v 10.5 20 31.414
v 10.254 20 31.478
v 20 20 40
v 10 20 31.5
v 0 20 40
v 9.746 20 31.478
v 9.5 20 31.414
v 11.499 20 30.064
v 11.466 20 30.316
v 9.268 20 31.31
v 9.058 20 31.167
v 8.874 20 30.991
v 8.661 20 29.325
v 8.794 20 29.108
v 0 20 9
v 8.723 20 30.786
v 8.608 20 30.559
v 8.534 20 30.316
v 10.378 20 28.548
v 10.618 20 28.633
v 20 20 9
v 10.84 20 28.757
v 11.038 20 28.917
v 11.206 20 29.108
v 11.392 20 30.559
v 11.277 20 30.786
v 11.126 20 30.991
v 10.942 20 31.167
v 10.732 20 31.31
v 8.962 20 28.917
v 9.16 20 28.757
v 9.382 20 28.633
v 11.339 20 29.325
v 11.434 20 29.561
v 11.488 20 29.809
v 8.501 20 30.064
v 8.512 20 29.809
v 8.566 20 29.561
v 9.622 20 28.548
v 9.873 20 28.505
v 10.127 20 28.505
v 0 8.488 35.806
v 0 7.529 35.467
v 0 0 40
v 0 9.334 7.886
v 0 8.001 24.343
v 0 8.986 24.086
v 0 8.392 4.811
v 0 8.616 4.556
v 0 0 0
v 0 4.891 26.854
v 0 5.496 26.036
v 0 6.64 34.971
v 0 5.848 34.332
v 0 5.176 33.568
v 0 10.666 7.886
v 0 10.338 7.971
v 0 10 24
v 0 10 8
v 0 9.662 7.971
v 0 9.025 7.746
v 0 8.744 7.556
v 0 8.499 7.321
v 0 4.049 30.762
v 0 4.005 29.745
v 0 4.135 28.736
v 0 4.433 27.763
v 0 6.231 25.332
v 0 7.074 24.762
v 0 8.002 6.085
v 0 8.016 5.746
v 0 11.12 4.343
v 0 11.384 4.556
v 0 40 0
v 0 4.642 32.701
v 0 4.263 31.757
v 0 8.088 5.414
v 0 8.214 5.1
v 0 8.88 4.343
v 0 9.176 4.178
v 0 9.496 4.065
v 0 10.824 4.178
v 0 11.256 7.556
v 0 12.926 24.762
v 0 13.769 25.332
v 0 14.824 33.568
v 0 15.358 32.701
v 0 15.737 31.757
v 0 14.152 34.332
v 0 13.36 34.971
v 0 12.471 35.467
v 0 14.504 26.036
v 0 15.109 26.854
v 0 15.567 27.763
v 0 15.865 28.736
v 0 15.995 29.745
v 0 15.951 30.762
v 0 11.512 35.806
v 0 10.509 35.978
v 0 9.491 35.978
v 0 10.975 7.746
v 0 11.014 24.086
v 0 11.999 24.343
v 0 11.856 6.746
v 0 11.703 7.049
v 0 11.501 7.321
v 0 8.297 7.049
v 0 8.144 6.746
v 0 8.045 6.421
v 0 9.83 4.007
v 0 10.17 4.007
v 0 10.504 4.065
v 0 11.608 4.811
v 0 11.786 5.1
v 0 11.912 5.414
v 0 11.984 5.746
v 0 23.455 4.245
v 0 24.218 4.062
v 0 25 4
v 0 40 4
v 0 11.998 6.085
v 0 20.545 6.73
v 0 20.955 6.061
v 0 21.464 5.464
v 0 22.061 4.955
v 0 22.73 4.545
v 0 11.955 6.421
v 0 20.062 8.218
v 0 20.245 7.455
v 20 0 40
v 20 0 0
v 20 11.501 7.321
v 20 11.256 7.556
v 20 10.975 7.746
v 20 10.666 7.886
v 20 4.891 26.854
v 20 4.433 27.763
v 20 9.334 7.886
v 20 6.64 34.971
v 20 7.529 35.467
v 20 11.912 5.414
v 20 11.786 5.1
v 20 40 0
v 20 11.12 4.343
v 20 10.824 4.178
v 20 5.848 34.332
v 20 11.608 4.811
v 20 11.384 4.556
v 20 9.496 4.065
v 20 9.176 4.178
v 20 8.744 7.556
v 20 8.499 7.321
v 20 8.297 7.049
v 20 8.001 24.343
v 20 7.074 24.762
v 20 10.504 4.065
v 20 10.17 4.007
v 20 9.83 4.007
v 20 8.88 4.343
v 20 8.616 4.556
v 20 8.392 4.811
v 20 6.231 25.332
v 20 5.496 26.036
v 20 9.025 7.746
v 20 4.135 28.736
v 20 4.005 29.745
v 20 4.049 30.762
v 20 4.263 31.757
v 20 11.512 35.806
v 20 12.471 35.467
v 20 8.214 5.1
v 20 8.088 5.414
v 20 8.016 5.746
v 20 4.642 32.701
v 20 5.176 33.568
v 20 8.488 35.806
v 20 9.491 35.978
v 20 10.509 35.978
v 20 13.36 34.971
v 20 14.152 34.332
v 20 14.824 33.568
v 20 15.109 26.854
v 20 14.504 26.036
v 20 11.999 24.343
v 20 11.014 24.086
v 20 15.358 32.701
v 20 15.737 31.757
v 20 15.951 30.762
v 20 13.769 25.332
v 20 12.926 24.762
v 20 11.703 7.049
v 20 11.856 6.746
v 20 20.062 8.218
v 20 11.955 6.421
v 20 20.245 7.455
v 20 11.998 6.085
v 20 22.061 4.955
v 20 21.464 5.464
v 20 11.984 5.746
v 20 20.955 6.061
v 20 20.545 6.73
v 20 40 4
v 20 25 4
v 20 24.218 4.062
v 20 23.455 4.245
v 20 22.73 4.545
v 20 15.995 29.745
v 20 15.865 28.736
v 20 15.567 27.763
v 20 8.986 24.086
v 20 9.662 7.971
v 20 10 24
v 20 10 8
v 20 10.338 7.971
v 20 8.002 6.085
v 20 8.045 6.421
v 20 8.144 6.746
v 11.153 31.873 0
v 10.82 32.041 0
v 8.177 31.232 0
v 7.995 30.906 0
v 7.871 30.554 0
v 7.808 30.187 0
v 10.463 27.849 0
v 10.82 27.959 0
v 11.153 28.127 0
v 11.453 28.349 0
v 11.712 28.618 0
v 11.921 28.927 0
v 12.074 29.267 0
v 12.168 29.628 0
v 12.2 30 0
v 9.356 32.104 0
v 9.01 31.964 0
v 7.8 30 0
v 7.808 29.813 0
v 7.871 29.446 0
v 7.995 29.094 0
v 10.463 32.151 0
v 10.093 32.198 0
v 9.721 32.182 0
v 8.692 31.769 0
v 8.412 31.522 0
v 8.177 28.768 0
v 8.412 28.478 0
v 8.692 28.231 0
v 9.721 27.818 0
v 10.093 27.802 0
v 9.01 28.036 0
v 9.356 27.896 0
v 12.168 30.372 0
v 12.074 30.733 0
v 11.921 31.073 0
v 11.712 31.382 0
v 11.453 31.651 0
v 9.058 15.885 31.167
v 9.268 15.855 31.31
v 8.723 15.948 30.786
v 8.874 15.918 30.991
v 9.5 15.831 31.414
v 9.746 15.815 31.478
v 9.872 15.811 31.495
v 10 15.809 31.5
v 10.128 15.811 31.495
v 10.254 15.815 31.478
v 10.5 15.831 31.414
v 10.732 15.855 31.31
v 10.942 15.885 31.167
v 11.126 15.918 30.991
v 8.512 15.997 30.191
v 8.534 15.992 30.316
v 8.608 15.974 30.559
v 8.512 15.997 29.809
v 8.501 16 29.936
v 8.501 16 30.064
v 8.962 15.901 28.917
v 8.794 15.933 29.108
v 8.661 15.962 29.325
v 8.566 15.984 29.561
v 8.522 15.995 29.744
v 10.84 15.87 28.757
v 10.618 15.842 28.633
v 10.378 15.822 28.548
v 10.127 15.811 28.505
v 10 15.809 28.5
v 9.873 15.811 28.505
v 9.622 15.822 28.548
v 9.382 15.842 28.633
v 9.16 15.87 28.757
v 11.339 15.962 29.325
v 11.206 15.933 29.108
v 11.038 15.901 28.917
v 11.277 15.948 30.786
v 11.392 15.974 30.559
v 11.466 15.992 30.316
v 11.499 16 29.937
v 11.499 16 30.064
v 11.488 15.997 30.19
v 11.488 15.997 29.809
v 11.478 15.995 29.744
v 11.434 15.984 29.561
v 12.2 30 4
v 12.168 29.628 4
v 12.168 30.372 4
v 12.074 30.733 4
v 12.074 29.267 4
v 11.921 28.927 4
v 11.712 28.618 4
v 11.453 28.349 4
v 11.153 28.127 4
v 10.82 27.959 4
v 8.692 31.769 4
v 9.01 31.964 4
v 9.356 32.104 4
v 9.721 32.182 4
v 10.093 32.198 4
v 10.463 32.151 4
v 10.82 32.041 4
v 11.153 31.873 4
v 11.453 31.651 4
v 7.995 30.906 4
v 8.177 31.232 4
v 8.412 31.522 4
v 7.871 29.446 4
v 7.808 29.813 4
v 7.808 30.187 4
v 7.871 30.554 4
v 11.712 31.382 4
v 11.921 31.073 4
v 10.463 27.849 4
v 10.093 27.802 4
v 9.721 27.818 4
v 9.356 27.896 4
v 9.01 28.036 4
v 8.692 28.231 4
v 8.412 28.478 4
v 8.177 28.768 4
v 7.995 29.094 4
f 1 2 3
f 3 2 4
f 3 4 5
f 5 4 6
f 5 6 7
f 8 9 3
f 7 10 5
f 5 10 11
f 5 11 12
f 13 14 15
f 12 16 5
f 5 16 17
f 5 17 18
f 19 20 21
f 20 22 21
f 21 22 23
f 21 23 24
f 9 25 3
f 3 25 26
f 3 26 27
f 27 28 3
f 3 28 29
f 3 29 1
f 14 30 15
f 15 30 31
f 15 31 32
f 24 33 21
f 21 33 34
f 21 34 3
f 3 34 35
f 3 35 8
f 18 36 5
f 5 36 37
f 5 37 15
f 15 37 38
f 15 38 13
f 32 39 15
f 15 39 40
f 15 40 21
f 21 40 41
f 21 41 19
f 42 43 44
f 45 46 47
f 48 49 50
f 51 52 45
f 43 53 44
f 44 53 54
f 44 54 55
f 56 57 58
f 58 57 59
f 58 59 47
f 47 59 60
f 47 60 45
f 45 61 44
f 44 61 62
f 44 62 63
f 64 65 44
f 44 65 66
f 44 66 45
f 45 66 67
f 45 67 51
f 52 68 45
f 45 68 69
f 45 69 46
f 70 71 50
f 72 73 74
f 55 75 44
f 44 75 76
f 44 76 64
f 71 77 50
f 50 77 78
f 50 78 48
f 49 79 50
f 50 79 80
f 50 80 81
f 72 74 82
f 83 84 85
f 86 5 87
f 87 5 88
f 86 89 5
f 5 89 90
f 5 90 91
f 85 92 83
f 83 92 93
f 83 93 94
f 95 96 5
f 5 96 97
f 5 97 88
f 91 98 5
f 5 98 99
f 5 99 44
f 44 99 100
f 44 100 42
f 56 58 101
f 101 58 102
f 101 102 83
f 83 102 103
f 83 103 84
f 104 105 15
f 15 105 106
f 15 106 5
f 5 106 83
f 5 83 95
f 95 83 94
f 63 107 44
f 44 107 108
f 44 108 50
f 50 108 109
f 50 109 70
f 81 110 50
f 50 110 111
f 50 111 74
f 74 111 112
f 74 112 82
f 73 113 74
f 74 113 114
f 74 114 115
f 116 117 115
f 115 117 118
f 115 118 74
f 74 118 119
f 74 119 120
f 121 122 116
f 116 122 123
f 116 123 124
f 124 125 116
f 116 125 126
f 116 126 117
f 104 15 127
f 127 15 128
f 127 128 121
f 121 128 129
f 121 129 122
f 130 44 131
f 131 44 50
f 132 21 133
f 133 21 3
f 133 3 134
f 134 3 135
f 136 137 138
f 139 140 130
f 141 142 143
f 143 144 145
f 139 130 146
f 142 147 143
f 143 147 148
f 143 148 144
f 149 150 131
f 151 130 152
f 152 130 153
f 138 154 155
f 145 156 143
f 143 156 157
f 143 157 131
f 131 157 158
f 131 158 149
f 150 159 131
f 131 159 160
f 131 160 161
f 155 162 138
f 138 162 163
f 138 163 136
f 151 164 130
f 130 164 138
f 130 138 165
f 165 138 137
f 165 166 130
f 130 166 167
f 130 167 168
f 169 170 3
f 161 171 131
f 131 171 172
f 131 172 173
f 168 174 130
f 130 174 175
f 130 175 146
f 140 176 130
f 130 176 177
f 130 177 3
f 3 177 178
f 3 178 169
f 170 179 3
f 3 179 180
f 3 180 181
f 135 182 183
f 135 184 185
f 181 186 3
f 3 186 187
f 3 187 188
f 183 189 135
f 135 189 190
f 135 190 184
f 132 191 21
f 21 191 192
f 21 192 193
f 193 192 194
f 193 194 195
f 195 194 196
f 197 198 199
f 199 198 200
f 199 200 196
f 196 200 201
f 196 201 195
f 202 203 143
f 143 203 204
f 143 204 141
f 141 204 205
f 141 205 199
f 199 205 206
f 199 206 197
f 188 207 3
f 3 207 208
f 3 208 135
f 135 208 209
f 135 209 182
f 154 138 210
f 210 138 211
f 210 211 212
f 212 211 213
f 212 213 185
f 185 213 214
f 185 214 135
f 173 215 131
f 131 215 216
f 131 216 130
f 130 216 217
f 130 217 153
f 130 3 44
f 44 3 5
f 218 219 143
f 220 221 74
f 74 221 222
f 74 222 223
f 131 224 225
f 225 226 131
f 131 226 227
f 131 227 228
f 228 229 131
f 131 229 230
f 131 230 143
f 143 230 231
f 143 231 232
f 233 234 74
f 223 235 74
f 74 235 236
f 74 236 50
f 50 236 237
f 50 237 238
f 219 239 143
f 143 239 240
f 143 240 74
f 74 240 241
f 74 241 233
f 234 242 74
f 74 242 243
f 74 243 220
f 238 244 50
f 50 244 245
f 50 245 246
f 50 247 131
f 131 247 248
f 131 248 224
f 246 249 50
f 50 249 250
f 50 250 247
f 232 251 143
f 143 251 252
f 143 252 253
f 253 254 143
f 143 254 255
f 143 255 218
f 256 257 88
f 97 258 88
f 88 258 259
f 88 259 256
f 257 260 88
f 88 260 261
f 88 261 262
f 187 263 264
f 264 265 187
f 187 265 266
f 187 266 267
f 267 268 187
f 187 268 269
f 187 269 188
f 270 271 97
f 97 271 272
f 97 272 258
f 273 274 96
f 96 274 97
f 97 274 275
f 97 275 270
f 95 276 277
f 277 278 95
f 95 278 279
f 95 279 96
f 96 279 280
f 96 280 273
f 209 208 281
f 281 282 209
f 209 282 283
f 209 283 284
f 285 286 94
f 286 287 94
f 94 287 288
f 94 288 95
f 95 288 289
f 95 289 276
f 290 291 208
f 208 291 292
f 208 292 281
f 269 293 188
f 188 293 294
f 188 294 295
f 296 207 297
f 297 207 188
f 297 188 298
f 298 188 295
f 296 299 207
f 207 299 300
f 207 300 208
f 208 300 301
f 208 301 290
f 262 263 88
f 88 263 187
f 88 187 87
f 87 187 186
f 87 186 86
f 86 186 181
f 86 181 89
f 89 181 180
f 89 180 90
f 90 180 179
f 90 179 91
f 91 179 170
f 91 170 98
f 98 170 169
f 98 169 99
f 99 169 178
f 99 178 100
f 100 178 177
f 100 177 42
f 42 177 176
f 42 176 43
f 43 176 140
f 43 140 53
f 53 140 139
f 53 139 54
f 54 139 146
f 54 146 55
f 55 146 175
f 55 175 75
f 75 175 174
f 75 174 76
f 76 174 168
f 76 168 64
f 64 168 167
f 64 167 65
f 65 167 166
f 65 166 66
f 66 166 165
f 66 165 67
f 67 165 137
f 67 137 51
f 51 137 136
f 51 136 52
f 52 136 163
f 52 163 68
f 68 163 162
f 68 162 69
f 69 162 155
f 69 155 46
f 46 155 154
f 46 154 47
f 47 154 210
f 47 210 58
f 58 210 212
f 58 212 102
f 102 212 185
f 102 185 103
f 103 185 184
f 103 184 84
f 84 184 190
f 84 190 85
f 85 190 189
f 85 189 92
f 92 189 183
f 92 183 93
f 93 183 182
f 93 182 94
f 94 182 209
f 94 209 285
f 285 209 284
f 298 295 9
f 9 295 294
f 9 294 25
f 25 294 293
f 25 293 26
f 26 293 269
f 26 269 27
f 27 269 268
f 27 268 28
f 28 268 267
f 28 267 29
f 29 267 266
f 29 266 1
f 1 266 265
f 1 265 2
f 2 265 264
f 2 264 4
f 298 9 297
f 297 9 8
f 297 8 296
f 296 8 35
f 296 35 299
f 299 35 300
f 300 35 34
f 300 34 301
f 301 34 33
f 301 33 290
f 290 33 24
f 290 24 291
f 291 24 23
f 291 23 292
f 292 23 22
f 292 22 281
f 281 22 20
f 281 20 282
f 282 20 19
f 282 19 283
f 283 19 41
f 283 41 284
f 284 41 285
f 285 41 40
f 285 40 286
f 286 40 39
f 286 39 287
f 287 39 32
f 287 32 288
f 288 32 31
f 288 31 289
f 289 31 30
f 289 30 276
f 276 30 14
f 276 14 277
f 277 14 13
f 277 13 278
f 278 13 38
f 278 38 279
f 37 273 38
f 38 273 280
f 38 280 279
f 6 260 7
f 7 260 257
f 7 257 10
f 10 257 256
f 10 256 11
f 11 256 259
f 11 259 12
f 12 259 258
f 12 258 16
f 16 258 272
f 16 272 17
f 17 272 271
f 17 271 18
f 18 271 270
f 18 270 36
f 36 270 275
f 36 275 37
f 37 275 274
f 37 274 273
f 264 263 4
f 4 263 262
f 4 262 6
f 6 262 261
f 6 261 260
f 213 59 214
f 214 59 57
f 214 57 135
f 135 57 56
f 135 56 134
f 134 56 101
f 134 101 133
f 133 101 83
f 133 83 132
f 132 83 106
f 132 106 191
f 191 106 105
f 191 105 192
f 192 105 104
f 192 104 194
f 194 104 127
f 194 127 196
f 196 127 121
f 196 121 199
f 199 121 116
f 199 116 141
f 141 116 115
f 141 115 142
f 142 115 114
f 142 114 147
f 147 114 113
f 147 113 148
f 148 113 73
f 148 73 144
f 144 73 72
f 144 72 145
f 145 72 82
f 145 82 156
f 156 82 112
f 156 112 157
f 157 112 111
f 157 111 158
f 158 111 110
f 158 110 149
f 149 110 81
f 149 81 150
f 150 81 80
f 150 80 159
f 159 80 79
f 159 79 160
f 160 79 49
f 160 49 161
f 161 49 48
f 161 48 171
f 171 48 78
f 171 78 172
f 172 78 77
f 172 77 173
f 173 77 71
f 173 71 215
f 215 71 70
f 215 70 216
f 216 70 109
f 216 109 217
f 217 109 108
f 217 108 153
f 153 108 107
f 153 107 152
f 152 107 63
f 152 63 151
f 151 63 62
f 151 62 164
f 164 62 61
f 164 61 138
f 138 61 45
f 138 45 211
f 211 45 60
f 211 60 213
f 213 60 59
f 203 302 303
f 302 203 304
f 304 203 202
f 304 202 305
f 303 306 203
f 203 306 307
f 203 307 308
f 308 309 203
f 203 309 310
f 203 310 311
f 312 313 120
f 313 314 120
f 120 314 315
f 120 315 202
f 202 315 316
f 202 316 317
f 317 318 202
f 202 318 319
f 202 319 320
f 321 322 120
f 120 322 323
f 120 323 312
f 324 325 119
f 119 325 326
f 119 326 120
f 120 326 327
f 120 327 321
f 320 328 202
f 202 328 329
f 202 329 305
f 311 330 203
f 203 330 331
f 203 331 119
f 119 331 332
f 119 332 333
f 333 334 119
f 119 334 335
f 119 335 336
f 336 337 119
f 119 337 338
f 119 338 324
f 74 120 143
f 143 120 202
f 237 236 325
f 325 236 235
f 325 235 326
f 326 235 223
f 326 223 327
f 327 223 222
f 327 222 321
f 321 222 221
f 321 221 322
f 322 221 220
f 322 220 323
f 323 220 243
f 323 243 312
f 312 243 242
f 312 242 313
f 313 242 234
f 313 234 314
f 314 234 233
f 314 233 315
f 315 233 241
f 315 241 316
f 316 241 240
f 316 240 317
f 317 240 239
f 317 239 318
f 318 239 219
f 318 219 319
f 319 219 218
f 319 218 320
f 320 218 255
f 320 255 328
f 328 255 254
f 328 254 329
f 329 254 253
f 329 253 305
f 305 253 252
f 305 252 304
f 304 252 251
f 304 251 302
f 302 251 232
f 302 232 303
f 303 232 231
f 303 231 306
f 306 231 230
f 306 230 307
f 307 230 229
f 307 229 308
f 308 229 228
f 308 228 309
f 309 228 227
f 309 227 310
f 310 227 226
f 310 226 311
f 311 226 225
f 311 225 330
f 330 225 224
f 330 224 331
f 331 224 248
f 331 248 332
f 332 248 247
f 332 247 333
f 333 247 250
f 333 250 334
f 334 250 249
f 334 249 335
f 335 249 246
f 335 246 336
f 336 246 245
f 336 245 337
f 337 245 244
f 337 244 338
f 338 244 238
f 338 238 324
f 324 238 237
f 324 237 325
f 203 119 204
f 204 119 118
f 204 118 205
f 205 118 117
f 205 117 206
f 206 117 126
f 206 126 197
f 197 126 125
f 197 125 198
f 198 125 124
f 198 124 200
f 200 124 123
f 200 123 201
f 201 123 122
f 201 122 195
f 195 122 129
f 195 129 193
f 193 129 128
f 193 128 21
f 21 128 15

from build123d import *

# Parameters (mm, degrees)
SKETCH1_W                  = 20
SKETCH1_H                  = 20
BOSS_EXTRUDE1_DEPTH        = 40
SKETCH2_R                  = 6
CUT_EXTRUDE1_DEPTH         = 30
F_3_0MM_DOWEL_HOLE1_REACH  = 50.99
F_3_0MM_DOWEL_HOLE1_BORE_R = 1.5
SKETCH5_R                  = 2
CUT_EXTRUDE2_DEPTH         = 30
SKETCH6_W                  = 20
SKETCH6_H                  = 4
BOSS_EXTRUDE2_DEPTH        = 20
F_4_4_4_4_DIAMETER_HOLE1_D = 4.4
FILLET1_R                  = 5


with BuildPart() as part:
    # Sketch1 → Boss-Extrude1 (new body)
    with BuildSketch(Plane.XY):
        with Locations((10, 10)):
            Rectangle(SKETCH1_W, SKETCH1_H)
    extrude(amount=BOSS_EXTRUDE1_DEPTH)

    # Sketch2 → Cut-Extrude1 (cut)
    with BuildSketch(Plane(origin=(20, 0, 0), x_dir=(0, 0, -1), z_dir=(1, 0, 0))):
        with Locations((-30, 10)):
            Circle(SKETCH2_R)
    extrude(amount=-CUT_EXTRUDE1_DEPTH, mode=Mode.SUBTRACT)

    # Ø3.0mm Dowel Hole1 bore → Ø3.0mm Dowel Hole1 (cut, up to next)
    with BuildSketch(Plane(origin=(0, 20, 0), x_dir=(1, 0, 0), z_dir=(0, 1, 0)), mode=Mode.PRIVATE) as f_3_0mm_dowel_hole1_sk1:
        with Locations((10, -30)):
            Circle(F_3_0MM_DOWEL_HOLE1_BORE_R)
    f_3_0mm_dowel_hole1_tool1 = extrude(f_3_0mm_dowel_hole1_sk1.sketch, amount=-F_3_0MM_DOWEL_HOLE1_REACH, mode=Mode.PRIVATE) & part.part
    add(f_3_0mm_dowel_hole1_tool1.solids().sort_by_distance((10, 20, 30))[0], mode=Mode.SUBTRACT)

    # Sketch5 → Cut-Extrude2 (cut)
    with BuildSketch(Plane.ZY):
        with Locations((6, 10)):
            Circle(SKETCH5_R)
    extrude(amount=-CUT_EXTRUDE2_DEPTH, mode=Mode.SUBTRACT)

    # Sketch6 → Boss-Extrude2 (add)
    with BuildSketch(Plane(origin=(0, 20, 0), x_dir=(1, 0, 0), z_dir=(0, 1, 0))):
        with Locations((10, -2)):
            Rectangle(SKETCH6_W, SKETCH6_H)
    extrude(amount=BOSS_EXTRUDE2_DEPTH)

    # Ø4.4 (4.4) Diameter Hole1 (through all)
    with Locations(Plane.XY.offset(4)):
        with Locations((10, 30)):
            Hole(F_4_4_4_4_DIAMETER_HOLE1_D / 2)

    # Fillet1
    fillet1_edges = [part.edges().sort_by_distance(p)[0] for p in [
        (10, 20, 4),
    ]]
    fillet(fillet1_edges, radius=FILLET1_R)


solid = part.part
